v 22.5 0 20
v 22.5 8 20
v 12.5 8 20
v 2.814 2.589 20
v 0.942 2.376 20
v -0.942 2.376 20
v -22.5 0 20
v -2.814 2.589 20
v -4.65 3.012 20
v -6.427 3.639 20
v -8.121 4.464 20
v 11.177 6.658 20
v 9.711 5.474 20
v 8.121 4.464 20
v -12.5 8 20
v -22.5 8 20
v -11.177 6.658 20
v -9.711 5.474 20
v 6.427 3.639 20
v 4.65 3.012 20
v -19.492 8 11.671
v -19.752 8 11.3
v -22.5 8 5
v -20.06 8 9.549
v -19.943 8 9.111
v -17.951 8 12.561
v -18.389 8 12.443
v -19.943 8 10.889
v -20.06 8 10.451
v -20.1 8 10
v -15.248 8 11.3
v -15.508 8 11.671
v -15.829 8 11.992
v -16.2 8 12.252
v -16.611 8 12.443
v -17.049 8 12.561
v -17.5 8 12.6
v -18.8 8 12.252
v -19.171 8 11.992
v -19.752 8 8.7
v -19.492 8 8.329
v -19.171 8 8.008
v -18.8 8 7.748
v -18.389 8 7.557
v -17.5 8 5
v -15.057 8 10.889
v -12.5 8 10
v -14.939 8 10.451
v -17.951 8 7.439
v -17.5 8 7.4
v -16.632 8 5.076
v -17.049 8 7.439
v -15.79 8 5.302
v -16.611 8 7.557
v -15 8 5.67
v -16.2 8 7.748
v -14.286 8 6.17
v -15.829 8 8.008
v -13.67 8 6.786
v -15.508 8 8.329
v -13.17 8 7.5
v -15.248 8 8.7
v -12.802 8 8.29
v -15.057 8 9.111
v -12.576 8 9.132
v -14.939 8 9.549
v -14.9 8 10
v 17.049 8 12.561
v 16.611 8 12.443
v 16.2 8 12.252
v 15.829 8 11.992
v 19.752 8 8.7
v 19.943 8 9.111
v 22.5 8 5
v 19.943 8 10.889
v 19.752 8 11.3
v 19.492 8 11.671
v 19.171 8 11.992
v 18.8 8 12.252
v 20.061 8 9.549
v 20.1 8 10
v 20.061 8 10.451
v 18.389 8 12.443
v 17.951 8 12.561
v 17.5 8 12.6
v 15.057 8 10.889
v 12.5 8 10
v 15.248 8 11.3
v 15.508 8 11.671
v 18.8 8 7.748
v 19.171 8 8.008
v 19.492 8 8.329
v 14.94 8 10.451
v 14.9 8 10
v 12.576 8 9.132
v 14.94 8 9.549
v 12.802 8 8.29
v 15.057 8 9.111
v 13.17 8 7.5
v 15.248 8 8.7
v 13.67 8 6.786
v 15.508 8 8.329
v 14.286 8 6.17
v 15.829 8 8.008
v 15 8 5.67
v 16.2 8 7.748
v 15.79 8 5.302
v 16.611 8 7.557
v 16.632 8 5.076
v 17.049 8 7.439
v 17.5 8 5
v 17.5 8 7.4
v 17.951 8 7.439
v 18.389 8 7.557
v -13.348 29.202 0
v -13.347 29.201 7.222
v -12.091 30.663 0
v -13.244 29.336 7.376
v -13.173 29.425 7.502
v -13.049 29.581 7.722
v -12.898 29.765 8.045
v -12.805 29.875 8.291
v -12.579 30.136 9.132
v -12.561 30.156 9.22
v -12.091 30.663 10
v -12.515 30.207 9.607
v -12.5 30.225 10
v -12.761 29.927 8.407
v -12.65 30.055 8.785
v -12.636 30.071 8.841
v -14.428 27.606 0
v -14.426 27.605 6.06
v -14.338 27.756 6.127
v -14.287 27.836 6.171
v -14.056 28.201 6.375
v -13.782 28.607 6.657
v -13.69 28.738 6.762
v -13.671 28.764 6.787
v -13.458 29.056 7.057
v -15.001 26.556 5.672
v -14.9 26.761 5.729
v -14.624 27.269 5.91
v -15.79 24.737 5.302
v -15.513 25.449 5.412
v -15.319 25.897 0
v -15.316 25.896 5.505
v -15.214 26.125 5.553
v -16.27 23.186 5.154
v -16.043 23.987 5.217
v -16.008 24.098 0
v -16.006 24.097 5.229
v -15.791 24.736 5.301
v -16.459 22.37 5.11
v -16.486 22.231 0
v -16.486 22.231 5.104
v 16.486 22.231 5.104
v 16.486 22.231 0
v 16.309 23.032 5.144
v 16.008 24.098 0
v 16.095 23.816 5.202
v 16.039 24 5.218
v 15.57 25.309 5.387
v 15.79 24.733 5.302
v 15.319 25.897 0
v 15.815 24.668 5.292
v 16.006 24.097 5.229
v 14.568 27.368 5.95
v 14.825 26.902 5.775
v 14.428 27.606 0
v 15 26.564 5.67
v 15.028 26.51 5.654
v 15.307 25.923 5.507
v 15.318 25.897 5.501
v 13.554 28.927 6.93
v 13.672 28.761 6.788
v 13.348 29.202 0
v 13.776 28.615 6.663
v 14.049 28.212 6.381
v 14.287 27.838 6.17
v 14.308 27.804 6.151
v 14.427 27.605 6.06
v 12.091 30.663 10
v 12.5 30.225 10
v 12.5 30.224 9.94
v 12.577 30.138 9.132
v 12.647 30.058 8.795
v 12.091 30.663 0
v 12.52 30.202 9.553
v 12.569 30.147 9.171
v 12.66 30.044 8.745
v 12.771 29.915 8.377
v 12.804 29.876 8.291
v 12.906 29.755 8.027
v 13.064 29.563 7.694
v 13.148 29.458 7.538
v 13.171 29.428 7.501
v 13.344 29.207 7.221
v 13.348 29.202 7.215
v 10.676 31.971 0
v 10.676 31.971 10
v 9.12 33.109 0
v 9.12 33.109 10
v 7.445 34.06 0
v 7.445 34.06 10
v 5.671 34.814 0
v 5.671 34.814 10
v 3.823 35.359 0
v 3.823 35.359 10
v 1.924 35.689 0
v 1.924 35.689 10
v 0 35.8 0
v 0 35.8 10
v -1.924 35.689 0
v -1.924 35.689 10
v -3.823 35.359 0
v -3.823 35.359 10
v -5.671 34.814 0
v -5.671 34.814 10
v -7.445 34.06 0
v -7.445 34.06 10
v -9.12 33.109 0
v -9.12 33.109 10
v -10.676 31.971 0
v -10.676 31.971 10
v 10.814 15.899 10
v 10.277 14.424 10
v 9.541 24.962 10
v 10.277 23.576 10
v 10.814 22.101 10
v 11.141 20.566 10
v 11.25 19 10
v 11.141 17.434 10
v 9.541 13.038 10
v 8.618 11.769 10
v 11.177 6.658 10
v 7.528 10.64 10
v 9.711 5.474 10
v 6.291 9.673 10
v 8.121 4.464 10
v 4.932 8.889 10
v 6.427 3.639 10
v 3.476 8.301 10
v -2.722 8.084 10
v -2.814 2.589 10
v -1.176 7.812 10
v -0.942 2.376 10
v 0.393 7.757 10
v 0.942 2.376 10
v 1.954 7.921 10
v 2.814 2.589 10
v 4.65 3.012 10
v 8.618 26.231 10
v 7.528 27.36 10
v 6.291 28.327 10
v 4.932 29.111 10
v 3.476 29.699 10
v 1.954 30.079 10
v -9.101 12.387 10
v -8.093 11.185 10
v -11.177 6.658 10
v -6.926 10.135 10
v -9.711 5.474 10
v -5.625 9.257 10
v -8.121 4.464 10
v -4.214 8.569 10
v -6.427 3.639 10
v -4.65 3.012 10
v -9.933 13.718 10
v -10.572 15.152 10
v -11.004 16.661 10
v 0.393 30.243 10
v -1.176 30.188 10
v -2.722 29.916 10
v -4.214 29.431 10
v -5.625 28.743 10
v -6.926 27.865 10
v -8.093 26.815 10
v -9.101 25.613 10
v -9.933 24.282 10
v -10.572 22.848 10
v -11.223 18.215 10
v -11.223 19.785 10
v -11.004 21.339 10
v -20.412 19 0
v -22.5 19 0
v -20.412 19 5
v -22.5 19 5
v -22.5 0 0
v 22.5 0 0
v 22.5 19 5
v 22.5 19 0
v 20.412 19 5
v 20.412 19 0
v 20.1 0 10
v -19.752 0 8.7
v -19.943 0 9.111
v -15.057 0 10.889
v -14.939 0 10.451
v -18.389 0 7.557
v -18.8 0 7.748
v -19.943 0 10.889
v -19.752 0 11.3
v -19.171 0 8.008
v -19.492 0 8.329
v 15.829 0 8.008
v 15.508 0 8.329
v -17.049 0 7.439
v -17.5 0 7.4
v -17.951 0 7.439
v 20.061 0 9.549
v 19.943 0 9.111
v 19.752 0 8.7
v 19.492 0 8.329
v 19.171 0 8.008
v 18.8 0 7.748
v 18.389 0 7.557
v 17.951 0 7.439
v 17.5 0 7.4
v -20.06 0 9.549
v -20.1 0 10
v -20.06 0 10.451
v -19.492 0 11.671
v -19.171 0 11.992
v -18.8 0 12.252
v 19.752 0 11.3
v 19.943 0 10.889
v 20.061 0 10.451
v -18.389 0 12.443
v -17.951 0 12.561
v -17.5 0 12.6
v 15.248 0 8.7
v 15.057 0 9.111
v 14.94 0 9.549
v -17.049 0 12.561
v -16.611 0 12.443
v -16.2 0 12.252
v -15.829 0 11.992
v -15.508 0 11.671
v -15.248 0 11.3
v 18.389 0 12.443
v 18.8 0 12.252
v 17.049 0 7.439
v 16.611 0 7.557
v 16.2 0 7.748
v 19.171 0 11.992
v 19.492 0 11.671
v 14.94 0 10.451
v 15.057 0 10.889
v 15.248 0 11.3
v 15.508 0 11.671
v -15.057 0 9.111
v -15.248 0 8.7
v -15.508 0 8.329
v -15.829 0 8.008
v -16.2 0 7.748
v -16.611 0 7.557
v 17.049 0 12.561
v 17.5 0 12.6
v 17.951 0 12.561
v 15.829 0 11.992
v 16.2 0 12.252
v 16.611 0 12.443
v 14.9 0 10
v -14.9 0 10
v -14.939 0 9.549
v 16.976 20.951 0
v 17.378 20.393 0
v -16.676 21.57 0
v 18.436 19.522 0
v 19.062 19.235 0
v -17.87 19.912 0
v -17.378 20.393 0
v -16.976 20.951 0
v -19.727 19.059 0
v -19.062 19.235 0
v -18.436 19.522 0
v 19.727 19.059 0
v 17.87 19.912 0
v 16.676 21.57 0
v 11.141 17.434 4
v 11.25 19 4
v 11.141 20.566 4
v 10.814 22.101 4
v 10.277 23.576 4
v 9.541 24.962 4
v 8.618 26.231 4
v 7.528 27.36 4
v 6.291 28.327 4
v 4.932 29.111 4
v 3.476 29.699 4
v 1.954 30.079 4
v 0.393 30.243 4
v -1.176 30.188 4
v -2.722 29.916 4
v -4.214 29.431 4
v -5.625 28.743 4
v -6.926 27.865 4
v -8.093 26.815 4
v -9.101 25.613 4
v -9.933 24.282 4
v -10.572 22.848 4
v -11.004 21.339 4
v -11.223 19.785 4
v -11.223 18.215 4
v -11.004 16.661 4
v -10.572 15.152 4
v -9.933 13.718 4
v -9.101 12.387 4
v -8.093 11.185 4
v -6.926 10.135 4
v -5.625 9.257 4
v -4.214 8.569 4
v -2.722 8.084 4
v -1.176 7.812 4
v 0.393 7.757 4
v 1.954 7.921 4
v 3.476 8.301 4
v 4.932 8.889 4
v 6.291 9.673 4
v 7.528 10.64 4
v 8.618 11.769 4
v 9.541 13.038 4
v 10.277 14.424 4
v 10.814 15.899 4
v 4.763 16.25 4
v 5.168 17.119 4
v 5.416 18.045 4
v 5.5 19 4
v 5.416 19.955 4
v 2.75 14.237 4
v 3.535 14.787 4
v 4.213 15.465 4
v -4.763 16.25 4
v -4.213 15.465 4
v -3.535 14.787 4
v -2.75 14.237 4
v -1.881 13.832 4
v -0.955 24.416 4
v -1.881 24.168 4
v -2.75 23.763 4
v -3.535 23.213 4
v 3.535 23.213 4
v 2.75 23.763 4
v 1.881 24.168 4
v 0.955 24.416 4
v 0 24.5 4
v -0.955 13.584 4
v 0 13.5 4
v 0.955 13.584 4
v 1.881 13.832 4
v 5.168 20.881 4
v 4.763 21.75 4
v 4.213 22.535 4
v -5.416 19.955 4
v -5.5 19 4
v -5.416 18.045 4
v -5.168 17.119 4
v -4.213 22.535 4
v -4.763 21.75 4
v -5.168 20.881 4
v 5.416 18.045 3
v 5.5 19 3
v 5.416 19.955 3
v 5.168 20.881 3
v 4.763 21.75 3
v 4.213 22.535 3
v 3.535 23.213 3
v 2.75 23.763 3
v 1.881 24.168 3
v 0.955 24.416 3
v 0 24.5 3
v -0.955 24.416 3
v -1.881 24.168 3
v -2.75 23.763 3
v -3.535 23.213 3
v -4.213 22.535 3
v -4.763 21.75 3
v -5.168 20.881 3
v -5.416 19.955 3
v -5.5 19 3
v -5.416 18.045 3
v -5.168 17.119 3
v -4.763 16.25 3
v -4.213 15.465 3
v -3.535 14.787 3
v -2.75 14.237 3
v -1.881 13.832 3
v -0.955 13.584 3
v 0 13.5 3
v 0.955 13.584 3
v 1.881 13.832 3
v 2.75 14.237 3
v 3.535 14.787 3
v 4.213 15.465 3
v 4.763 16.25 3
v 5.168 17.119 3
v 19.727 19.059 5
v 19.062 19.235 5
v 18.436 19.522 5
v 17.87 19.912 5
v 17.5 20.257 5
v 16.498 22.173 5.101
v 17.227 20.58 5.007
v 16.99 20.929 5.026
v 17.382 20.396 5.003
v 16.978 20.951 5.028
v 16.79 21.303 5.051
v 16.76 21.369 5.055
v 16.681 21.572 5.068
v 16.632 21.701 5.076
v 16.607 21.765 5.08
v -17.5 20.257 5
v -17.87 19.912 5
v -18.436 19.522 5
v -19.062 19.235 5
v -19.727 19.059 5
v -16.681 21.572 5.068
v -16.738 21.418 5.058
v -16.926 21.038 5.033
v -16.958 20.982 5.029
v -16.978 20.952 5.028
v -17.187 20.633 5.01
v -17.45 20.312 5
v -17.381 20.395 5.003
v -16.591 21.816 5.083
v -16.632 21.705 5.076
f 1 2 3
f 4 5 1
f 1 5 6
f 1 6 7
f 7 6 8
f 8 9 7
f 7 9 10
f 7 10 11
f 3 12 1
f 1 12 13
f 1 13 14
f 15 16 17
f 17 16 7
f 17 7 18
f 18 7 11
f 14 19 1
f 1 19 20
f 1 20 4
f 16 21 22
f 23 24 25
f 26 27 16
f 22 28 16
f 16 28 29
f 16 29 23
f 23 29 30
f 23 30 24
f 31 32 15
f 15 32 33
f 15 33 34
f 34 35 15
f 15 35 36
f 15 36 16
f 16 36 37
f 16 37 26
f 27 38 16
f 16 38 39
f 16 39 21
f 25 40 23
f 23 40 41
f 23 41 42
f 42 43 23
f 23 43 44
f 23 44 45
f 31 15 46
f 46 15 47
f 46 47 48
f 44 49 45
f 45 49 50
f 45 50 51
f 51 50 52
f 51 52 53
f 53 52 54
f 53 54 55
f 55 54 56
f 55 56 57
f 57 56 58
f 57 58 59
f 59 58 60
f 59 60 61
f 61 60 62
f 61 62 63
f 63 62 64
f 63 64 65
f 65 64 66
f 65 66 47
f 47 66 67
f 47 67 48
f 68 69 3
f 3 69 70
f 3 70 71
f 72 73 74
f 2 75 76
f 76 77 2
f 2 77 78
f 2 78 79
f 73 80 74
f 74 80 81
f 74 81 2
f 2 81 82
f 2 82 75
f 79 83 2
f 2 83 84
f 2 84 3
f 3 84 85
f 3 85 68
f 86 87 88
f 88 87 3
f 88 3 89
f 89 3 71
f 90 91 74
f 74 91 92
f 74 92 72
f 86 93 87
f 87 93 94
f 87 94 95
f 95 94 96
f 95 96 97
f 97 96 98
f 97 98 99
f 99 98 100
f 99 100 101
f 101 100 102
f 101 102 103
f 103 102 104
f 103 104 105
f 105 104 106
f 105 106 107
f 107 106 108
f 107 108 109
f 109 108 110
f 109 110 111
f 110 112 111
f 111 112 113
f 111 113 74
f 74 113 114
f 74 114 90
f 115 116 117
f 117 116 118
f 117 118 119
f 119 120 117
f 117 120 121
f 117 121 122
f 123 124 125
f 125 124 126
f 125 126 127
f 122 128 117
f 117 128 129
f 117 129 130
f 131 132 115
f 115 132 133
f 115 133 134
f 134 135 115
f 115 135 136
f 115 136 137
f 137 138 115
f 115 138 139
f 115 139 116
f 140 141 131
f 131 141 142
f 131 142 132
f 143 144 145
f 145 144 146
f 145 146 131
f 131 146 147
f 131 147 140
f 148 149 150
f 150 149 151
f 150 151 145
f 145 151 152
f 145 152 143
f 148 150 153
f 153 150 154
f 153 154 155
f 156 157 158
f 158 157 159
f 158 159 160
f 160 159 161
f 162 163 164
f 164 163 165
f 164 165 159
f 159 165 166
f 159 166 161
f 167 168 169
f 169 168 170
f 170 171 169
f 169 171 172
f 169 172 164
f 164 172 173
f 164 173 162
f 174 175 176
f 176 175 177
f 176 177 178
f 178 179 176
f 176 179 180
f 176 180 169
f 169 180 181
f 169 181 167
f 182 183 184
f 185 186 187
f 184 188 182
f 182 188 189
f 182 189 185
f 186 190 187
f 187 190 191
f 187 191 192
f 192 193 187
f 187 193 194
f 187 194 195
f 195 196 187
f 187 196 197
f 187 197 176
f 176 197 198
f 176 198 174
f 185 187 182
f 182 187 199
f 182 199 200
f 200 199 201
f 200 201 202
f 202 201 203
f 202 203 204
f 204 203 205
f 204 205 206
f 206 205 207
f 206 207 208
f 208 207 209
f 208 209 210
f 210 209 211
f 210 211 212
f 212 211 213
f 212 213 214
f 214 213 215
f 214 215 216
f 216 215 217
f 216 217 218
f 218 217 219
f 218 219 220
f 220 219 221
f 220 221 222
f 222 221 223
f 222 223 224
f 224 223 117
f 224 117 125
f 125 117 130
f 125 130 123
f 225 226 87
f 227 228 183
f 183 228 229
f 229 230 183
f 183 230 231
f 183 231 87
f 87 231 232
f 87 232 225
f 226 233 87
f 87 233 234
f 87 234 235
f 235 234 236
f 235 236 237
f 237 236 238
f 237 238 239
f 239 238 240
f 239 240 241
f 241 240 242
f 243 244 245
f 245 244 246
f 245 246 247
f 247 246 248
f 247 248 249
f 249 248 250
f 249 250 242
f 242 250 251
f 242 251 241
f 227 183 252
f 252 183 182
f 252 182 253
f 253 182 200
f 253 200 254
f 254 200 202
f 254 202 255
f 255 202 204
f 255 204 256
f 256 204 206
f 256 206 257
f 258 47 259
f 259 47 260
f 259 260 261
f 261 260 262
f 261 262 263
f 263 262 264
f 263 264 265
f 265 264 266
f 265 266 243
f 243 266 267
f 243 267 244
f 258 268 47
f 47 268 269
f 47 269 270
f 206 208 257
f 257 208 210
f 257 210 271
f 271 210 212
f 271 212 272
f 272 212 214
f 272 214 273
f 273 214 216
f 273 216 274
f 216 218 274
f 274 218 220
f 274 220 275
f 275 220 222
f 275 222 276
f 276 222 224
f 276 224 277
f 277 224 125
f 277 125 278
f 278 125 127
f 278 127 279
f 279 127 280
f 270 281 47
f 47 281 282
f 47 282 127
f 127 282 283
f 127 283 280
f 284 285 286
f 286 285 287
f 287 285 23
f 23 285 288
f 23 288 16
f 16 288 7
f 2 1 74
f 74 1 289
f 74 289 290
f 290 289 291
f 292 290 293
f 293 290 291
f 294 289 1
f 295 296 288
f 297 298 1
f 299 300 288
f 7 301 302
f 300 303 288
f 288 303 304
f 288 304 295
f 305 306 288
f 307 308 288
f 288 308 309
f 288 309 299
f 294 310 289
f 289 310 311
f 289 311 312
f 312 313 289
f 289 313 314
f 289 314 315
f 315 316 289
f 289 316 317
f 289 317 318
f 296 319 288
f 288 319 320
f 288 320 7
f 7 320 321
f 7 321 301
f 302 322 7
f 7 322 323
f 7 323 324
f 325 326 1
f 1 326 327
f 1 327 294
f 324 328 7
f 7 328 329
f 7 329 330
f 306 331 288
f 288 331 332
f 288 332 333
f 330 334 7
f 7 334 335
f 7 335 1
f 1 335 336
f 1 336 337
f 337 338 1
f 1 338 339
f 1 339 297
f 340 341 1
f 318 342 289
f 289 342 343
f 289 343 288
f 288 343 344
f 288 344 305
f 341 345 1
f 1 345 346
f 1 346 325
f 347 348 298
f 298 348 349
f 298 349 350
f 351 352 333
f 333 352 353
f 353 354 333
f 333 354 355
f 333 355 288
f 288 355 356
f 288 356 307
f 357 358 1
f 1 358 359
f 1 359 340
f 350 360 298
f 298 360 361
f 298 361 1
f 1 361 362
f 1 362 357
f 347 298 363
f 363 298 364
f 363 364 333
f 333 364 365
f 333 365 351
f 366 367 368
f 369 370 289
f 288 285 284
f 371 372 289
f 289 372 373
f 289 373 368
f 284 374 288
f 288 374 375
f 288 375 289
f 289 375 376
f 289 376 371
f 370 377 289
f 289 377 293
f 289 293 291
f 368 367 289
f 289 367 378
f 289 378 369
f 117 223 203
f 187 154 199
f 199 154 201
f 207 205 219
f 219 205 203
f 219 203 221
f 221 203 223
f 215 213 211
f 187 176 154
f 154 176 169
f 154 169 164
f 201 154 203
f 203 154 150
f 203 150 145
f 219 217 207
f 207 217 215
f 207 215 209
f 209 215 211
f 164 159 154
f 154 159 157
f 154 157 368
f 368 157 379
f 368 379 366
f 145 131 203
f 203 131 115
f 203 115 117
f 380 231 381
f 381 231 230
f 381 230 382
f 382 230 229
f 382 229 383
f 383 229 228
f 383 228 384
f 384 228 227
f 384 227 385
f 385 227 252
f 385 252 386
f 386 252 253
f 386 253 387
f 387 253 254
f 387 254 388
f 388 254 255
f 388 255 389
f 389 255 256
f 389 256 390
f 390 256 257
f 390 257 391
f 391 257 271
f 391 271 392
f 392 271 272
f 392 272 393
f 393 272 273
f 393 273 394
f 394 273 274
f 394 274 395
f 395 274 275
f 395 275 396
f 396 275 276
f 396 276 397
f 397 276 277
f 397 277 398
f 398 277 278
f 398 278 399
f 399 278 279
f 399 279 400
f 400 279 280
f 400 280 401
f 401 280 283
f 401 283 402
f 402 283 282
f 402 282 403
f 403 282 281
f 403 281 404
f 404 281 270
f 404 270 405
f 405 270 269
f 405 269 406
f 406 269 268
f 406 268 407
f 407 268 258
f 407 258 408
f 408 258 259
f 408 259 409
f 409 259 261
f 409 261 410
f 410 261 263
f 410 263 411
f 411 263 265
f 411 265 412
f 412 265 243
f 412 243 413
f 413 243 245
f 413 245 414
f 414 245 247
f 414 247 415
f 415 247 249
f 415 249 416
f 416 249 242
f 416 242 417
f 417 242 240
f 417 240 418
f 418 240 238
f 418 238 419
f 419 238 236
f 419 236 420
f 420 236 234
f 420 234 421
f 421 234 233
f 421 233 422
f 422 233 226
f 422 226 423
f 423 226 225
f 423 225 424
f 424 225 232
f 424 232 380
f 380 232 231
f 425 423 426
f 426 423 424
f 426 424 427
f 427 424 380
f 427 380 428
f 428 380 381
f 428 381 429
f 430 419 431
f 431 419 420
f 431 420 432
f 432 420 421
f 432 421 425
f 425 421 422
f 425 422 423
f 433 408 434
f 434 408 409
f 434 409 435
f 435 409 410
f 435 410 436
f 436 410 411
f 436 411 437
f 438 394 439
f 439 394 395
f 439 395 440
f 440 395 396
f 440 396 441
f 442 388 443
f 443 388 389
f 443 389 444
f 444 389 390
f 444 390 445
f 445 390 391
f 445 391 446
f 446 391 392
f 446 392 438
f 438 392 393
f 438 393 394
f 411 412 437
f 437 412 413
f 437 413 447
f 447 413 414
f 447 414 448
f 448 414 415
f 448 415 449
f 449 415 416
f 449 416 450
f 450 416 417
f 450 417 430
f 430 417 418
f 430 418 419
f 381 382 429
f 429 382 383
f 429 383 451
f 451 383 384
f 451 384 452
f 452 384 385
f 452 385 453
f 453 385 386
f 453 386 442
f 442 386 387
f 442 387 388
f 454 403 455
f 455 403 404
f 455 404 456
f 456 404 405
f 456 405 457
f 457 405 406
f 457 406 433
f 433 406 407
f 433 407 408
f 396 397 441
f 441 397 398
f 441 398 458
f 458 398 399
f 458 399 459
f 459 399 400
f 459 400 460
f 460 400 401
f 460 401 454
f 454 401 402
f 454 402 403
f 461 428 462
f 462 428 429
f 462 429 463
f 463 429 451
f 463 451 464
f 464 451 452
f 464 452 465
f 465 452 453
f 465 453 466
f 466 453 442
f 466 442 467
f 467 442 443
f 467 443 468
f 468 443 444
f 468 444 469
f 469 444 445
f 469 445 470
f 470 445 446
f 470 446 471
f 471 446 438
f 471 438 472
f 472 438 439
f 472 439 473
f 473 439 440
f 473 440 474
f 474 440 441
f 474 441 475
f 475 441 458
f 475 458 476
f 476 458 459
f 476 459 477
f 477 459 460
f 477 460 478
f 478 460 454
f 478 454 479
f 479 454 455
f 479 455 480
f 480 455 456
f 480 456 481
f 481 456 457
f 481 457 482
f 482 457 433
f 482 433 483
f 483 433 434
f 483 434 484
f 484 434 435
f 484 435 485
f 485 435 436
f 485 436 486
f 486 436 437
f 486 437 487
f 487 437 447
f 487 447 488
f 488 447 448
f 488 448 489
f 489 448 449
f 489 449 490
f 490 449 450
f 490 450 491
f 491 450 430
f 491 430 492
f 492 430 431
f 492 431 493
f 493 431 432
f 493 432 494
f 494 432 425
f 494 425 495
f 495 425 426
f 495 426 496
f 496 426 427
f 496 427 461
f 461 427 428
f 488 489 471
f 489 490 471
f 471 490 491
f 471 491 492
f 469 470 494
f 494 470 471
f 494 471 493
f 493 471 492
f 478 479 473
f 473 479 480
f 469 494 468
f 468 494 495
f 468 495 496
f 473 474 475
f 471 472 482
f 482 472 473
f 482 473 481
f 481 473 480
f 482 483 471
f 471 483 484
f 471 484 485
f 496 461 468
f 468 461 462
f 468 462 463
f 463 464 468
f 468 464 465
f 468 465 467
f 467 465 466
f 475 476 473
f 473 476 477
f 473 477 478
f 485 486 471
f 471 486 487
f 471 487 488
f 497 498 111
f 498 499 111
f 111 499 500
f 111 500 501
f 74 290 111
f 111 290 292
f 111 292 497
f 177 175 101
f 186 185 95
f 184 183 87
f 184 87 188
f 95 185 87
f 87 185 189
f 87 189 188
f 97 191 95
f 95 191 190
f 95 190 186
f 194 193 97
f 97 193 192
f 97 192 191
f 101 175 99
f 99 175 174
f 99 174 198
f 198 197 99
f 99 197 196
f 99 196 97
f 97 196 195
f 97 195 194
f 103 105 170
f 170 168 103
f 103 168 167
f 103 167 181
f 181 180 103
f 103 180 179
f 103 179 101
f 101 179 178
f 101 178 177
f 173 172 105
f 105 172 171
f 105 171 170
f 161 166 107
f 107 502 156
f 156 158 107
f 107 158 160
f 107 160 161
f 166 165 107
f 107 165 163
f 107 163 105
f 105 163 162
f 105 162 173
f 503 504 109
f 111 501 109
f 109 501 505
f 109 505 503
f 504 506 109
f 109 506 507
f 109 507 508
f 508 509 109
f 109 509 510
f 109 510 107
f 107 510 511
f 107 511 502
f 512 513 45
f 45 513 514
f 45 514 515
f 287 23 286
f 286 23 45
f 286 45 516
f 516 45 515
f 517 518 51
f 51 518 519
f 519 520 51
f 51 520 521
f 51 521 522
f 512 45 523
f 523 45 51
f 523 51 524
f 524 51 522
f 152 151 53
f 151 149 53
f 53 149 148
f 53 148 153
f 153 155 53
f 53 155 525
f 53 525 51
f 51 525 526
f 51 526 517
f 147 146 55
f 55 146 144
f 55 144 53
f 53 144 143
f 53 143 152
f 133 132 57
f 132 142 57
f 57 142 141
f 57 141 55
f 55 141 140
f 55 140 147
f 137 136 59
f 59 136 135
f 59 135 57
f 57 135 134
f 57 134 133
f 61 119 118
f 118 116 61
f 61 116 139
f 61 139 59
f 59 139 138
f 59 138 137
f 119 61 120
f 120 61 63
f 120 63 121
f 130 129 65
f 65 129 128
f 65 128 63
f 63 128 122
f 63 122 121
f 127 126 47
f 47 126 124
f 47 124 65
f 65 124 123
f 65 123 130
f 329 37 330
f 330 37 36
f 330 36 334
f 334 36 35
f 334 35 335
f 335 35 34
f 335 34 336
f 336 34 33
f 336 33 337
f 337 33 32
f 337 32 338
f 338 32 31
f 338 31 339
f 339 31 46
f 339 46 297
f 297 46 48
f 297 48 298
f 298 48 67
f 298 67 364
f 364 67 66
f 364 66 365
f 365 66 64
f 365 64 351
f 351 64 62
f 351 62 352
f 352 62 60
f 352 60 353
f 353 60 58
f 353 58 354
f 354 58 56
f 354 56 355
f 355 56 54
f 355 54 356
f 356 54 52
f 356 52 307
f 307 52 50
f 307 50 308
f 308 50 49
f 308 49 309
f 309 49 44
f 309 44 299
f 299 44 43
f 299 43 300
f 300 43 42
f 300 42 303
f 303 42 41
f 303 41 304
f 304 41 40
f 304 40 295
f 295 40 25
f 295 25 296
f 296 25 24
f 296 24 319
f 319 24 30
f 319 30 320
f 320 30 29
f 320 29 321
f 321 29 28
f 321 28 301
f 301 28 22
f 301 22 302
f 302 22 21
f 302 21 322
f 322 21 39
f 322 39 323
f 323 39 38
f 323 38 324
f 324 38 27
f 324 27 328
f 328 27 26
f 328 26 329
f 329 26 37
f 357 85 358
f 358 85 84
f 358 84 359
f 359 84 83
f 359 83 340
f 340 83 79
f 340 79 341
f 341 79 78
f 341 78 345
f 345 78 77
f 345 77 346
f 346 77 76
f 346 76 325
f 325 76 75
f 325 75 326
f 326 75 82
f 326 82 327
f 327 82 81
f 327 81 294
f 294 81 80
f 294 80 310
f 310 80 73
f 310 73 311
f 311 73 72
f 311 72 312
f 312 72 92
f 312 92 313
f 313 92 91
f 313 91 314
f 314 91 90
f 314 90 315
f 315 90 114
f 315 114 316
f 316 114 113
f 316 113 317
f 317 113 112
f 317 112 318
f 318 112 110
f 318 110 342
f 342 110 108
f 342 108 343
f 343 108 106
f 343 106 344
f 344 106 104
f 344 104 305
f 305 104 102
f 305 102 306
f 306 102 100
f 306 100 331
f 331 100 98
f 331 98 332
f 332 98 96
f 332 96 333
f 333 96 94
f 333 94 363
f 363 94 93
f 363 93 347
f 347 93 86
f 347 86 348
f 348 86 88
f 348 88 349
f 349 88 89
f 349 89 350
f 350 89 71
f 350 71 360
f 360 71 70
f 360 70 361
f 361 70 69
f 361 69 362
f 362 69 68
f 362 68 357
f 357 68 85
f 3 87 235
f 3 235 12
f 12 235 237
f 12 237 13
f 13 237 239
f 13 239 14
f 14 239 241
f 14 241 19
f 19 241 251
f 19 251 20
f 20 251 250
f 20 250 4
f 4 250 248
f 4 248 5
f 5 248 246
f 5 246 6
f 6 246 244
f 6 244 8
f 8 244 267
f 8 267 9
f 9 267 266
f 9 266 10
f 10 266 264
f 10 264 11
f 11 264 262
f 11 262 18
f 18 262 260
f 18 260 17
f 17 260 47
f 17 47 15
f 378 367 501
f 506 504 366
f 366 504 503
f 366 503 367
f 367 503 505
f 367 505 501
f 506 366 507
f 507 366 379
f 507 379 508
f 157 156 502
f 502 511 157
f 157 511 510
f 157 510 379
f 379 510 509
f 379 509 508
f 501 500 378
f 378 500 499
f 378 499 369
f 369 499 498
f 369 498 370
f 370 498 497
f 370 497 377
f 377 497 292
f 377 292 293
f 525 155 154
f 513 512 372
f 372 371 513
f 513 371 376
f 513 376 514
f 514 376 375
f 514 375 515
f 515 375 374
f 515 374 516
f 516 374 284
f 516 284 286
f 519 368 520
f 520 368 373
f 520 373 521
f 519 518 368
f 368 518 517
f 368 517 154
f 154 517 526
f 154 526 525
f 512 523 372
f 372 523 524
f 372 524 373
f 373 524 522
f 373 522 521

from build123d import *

# Parameters (mm, degrees)
BOSS_EXTRUDE1_DEPTH = 20
SKETCH2_W           = 10
SKETCH2_H           = 27.8
CUT_EXTRUDE1_DEPTH  = 61.882181301
SKETCH4_R           = 11.25
CUT_EXTRUDE3_DEPTH  = 6
SKETCH5_R           = 5.5
CUT_EXTRUDE4_DEPTH  = 1
CUT_EXTRUDE5_DEPTH  = 41.976700697
SKETCH7_R           = 2.6
CUT_EXTRUDE6_DEPTH  = 41.976700765
CUT_EXTRUDE7_DEPTH  = 44.449856262
FILLET1_R           = 4


with BuildPart() as part:
    # Sketch1 → Boss-Extrude1 (new body)
    with BuildSketch(Plane.XY):
        with BuildLine():
            Line((0, 0), (22.5, 0))
            Line((22.5, 0), (22.5, 19))
            Line((22.5, 19), (16.8, 19))
            ThreePointArc((16.8, 19), (0, 35.8), (-16.8, 19))
            Line((-16.8, 19), (-22.5, 19))
            Line((-22.5, 19), (-22.5, 0))
            Line((-22.5, 0), (0, 0))
        make_face()
    extrude(amount=BOSS_EXTRUDE1_DEPTH)

    # Sketch2 → Cut-Extrude1 (cut, through all)
    with BuildSketch(Plane(origin=(22.5, 0, 0), x_dir=(0, 0, -1), z_dir=(1, 0, 0))):
        with Locations((-15, 21.9)):
            Rectangle(SKETCH2_W, SKETCH2_H)
    extrude(amount=-CUT_EXTRUDE1_DEPTH, mode=Mode.SUBTRACT)

    # Sketch4 → Cut-Extrude3 (cut)
    with BuildSketch(Plane.XY.offset(10)):
        with Locations((0, 19)):
            Circle(SKETCH4_R)
    extrude(amount=-CUT_EXTRUDE3_DEPTH, mode=Mode.SUBTRACT)

    # Sketch5 → Cut-Extrude4 (cut)
    with BuildSketch(Plane.XY.offset(4)):
        with Locations((0, 19)):
            Circle(SKETCH5_R)
    extrude(amount=-CUT_EXTRUDE4_DEPTH, mode=Mode.SUBTRACT)

    # Sketch6 → Cut-Extrude5 (cut, through all)
    with BuildSketch(Plane(origin=(0, 8, 0), x_dir=(1, 0, 0), z_dir=(0, 1, 0))):
        with BuildLine():
            Line((-17.5, -5), (-22.5, -5))
            Line((-22.5, -5), (-22.5, -10))
            Line((-22.5, -10), (-12.5, -10))
            ThreePointArc((-12.5, -10), (-13.964466094, -6.464466094), (-17.5, -5))
        make_face()
        with BuildLine():
            Line((17.5, -5), (22.5, -5))
            Line((22.5, -5), (22.5, -10))
            Line((22.5, -10), (12.5, -10))
            ThreePointArc((12.5, -10), (13.964466094, -6.464466094), (17.5, -5))
        make_face()
    extrude(amount=CUT_EXTRUDE5_DEPTH, mode=Mode.SUBTRACT)

    # Sketch7 → Cut-Extrude6 (cut, through all)
    with BuildSketch(Plane(origin=(0, 8, 0), x_dir=(1, 0, 0), z_dir=(0, 1, 0))):
        with Locations(Location((-17.5, -10, 0), (0, 0, 270))):
            Circle(SKETCH7_R)
        with Locations(Location((17.5, -10, 0), (0, 0, 270))):
            Circle(SKETCH7_R)
    extrude(amount=-CUT_EXTRUDE6_DEPTH, mode=Mode.SUBTRACT)

    # Sketch8 → Cut-Extrude7 (cut, through all)
    with BuildSketch(Plane.XY.offset(10)):
        with BuildLine():
            Line((-12.5, 8), (12.5, 8))
            ThreePointArc((12.5, 8), (0, 2.349174195), (-12.5, 8))
        make_face()
    extrude(amount=CUT_EXTRUDE7_DEPTH, mode=Mode.SUBTRACT)

    # Fillet1
    fillet1_edges = [part.edges().sort_by_distance(p)[0] for p in [
        (16.8, 19, 2.524621241),
        (-16.8, 19, 2.524621241),
    ]]
    fillet(fillet1_edges, radius=FILLET1_R)


solid = part.part
